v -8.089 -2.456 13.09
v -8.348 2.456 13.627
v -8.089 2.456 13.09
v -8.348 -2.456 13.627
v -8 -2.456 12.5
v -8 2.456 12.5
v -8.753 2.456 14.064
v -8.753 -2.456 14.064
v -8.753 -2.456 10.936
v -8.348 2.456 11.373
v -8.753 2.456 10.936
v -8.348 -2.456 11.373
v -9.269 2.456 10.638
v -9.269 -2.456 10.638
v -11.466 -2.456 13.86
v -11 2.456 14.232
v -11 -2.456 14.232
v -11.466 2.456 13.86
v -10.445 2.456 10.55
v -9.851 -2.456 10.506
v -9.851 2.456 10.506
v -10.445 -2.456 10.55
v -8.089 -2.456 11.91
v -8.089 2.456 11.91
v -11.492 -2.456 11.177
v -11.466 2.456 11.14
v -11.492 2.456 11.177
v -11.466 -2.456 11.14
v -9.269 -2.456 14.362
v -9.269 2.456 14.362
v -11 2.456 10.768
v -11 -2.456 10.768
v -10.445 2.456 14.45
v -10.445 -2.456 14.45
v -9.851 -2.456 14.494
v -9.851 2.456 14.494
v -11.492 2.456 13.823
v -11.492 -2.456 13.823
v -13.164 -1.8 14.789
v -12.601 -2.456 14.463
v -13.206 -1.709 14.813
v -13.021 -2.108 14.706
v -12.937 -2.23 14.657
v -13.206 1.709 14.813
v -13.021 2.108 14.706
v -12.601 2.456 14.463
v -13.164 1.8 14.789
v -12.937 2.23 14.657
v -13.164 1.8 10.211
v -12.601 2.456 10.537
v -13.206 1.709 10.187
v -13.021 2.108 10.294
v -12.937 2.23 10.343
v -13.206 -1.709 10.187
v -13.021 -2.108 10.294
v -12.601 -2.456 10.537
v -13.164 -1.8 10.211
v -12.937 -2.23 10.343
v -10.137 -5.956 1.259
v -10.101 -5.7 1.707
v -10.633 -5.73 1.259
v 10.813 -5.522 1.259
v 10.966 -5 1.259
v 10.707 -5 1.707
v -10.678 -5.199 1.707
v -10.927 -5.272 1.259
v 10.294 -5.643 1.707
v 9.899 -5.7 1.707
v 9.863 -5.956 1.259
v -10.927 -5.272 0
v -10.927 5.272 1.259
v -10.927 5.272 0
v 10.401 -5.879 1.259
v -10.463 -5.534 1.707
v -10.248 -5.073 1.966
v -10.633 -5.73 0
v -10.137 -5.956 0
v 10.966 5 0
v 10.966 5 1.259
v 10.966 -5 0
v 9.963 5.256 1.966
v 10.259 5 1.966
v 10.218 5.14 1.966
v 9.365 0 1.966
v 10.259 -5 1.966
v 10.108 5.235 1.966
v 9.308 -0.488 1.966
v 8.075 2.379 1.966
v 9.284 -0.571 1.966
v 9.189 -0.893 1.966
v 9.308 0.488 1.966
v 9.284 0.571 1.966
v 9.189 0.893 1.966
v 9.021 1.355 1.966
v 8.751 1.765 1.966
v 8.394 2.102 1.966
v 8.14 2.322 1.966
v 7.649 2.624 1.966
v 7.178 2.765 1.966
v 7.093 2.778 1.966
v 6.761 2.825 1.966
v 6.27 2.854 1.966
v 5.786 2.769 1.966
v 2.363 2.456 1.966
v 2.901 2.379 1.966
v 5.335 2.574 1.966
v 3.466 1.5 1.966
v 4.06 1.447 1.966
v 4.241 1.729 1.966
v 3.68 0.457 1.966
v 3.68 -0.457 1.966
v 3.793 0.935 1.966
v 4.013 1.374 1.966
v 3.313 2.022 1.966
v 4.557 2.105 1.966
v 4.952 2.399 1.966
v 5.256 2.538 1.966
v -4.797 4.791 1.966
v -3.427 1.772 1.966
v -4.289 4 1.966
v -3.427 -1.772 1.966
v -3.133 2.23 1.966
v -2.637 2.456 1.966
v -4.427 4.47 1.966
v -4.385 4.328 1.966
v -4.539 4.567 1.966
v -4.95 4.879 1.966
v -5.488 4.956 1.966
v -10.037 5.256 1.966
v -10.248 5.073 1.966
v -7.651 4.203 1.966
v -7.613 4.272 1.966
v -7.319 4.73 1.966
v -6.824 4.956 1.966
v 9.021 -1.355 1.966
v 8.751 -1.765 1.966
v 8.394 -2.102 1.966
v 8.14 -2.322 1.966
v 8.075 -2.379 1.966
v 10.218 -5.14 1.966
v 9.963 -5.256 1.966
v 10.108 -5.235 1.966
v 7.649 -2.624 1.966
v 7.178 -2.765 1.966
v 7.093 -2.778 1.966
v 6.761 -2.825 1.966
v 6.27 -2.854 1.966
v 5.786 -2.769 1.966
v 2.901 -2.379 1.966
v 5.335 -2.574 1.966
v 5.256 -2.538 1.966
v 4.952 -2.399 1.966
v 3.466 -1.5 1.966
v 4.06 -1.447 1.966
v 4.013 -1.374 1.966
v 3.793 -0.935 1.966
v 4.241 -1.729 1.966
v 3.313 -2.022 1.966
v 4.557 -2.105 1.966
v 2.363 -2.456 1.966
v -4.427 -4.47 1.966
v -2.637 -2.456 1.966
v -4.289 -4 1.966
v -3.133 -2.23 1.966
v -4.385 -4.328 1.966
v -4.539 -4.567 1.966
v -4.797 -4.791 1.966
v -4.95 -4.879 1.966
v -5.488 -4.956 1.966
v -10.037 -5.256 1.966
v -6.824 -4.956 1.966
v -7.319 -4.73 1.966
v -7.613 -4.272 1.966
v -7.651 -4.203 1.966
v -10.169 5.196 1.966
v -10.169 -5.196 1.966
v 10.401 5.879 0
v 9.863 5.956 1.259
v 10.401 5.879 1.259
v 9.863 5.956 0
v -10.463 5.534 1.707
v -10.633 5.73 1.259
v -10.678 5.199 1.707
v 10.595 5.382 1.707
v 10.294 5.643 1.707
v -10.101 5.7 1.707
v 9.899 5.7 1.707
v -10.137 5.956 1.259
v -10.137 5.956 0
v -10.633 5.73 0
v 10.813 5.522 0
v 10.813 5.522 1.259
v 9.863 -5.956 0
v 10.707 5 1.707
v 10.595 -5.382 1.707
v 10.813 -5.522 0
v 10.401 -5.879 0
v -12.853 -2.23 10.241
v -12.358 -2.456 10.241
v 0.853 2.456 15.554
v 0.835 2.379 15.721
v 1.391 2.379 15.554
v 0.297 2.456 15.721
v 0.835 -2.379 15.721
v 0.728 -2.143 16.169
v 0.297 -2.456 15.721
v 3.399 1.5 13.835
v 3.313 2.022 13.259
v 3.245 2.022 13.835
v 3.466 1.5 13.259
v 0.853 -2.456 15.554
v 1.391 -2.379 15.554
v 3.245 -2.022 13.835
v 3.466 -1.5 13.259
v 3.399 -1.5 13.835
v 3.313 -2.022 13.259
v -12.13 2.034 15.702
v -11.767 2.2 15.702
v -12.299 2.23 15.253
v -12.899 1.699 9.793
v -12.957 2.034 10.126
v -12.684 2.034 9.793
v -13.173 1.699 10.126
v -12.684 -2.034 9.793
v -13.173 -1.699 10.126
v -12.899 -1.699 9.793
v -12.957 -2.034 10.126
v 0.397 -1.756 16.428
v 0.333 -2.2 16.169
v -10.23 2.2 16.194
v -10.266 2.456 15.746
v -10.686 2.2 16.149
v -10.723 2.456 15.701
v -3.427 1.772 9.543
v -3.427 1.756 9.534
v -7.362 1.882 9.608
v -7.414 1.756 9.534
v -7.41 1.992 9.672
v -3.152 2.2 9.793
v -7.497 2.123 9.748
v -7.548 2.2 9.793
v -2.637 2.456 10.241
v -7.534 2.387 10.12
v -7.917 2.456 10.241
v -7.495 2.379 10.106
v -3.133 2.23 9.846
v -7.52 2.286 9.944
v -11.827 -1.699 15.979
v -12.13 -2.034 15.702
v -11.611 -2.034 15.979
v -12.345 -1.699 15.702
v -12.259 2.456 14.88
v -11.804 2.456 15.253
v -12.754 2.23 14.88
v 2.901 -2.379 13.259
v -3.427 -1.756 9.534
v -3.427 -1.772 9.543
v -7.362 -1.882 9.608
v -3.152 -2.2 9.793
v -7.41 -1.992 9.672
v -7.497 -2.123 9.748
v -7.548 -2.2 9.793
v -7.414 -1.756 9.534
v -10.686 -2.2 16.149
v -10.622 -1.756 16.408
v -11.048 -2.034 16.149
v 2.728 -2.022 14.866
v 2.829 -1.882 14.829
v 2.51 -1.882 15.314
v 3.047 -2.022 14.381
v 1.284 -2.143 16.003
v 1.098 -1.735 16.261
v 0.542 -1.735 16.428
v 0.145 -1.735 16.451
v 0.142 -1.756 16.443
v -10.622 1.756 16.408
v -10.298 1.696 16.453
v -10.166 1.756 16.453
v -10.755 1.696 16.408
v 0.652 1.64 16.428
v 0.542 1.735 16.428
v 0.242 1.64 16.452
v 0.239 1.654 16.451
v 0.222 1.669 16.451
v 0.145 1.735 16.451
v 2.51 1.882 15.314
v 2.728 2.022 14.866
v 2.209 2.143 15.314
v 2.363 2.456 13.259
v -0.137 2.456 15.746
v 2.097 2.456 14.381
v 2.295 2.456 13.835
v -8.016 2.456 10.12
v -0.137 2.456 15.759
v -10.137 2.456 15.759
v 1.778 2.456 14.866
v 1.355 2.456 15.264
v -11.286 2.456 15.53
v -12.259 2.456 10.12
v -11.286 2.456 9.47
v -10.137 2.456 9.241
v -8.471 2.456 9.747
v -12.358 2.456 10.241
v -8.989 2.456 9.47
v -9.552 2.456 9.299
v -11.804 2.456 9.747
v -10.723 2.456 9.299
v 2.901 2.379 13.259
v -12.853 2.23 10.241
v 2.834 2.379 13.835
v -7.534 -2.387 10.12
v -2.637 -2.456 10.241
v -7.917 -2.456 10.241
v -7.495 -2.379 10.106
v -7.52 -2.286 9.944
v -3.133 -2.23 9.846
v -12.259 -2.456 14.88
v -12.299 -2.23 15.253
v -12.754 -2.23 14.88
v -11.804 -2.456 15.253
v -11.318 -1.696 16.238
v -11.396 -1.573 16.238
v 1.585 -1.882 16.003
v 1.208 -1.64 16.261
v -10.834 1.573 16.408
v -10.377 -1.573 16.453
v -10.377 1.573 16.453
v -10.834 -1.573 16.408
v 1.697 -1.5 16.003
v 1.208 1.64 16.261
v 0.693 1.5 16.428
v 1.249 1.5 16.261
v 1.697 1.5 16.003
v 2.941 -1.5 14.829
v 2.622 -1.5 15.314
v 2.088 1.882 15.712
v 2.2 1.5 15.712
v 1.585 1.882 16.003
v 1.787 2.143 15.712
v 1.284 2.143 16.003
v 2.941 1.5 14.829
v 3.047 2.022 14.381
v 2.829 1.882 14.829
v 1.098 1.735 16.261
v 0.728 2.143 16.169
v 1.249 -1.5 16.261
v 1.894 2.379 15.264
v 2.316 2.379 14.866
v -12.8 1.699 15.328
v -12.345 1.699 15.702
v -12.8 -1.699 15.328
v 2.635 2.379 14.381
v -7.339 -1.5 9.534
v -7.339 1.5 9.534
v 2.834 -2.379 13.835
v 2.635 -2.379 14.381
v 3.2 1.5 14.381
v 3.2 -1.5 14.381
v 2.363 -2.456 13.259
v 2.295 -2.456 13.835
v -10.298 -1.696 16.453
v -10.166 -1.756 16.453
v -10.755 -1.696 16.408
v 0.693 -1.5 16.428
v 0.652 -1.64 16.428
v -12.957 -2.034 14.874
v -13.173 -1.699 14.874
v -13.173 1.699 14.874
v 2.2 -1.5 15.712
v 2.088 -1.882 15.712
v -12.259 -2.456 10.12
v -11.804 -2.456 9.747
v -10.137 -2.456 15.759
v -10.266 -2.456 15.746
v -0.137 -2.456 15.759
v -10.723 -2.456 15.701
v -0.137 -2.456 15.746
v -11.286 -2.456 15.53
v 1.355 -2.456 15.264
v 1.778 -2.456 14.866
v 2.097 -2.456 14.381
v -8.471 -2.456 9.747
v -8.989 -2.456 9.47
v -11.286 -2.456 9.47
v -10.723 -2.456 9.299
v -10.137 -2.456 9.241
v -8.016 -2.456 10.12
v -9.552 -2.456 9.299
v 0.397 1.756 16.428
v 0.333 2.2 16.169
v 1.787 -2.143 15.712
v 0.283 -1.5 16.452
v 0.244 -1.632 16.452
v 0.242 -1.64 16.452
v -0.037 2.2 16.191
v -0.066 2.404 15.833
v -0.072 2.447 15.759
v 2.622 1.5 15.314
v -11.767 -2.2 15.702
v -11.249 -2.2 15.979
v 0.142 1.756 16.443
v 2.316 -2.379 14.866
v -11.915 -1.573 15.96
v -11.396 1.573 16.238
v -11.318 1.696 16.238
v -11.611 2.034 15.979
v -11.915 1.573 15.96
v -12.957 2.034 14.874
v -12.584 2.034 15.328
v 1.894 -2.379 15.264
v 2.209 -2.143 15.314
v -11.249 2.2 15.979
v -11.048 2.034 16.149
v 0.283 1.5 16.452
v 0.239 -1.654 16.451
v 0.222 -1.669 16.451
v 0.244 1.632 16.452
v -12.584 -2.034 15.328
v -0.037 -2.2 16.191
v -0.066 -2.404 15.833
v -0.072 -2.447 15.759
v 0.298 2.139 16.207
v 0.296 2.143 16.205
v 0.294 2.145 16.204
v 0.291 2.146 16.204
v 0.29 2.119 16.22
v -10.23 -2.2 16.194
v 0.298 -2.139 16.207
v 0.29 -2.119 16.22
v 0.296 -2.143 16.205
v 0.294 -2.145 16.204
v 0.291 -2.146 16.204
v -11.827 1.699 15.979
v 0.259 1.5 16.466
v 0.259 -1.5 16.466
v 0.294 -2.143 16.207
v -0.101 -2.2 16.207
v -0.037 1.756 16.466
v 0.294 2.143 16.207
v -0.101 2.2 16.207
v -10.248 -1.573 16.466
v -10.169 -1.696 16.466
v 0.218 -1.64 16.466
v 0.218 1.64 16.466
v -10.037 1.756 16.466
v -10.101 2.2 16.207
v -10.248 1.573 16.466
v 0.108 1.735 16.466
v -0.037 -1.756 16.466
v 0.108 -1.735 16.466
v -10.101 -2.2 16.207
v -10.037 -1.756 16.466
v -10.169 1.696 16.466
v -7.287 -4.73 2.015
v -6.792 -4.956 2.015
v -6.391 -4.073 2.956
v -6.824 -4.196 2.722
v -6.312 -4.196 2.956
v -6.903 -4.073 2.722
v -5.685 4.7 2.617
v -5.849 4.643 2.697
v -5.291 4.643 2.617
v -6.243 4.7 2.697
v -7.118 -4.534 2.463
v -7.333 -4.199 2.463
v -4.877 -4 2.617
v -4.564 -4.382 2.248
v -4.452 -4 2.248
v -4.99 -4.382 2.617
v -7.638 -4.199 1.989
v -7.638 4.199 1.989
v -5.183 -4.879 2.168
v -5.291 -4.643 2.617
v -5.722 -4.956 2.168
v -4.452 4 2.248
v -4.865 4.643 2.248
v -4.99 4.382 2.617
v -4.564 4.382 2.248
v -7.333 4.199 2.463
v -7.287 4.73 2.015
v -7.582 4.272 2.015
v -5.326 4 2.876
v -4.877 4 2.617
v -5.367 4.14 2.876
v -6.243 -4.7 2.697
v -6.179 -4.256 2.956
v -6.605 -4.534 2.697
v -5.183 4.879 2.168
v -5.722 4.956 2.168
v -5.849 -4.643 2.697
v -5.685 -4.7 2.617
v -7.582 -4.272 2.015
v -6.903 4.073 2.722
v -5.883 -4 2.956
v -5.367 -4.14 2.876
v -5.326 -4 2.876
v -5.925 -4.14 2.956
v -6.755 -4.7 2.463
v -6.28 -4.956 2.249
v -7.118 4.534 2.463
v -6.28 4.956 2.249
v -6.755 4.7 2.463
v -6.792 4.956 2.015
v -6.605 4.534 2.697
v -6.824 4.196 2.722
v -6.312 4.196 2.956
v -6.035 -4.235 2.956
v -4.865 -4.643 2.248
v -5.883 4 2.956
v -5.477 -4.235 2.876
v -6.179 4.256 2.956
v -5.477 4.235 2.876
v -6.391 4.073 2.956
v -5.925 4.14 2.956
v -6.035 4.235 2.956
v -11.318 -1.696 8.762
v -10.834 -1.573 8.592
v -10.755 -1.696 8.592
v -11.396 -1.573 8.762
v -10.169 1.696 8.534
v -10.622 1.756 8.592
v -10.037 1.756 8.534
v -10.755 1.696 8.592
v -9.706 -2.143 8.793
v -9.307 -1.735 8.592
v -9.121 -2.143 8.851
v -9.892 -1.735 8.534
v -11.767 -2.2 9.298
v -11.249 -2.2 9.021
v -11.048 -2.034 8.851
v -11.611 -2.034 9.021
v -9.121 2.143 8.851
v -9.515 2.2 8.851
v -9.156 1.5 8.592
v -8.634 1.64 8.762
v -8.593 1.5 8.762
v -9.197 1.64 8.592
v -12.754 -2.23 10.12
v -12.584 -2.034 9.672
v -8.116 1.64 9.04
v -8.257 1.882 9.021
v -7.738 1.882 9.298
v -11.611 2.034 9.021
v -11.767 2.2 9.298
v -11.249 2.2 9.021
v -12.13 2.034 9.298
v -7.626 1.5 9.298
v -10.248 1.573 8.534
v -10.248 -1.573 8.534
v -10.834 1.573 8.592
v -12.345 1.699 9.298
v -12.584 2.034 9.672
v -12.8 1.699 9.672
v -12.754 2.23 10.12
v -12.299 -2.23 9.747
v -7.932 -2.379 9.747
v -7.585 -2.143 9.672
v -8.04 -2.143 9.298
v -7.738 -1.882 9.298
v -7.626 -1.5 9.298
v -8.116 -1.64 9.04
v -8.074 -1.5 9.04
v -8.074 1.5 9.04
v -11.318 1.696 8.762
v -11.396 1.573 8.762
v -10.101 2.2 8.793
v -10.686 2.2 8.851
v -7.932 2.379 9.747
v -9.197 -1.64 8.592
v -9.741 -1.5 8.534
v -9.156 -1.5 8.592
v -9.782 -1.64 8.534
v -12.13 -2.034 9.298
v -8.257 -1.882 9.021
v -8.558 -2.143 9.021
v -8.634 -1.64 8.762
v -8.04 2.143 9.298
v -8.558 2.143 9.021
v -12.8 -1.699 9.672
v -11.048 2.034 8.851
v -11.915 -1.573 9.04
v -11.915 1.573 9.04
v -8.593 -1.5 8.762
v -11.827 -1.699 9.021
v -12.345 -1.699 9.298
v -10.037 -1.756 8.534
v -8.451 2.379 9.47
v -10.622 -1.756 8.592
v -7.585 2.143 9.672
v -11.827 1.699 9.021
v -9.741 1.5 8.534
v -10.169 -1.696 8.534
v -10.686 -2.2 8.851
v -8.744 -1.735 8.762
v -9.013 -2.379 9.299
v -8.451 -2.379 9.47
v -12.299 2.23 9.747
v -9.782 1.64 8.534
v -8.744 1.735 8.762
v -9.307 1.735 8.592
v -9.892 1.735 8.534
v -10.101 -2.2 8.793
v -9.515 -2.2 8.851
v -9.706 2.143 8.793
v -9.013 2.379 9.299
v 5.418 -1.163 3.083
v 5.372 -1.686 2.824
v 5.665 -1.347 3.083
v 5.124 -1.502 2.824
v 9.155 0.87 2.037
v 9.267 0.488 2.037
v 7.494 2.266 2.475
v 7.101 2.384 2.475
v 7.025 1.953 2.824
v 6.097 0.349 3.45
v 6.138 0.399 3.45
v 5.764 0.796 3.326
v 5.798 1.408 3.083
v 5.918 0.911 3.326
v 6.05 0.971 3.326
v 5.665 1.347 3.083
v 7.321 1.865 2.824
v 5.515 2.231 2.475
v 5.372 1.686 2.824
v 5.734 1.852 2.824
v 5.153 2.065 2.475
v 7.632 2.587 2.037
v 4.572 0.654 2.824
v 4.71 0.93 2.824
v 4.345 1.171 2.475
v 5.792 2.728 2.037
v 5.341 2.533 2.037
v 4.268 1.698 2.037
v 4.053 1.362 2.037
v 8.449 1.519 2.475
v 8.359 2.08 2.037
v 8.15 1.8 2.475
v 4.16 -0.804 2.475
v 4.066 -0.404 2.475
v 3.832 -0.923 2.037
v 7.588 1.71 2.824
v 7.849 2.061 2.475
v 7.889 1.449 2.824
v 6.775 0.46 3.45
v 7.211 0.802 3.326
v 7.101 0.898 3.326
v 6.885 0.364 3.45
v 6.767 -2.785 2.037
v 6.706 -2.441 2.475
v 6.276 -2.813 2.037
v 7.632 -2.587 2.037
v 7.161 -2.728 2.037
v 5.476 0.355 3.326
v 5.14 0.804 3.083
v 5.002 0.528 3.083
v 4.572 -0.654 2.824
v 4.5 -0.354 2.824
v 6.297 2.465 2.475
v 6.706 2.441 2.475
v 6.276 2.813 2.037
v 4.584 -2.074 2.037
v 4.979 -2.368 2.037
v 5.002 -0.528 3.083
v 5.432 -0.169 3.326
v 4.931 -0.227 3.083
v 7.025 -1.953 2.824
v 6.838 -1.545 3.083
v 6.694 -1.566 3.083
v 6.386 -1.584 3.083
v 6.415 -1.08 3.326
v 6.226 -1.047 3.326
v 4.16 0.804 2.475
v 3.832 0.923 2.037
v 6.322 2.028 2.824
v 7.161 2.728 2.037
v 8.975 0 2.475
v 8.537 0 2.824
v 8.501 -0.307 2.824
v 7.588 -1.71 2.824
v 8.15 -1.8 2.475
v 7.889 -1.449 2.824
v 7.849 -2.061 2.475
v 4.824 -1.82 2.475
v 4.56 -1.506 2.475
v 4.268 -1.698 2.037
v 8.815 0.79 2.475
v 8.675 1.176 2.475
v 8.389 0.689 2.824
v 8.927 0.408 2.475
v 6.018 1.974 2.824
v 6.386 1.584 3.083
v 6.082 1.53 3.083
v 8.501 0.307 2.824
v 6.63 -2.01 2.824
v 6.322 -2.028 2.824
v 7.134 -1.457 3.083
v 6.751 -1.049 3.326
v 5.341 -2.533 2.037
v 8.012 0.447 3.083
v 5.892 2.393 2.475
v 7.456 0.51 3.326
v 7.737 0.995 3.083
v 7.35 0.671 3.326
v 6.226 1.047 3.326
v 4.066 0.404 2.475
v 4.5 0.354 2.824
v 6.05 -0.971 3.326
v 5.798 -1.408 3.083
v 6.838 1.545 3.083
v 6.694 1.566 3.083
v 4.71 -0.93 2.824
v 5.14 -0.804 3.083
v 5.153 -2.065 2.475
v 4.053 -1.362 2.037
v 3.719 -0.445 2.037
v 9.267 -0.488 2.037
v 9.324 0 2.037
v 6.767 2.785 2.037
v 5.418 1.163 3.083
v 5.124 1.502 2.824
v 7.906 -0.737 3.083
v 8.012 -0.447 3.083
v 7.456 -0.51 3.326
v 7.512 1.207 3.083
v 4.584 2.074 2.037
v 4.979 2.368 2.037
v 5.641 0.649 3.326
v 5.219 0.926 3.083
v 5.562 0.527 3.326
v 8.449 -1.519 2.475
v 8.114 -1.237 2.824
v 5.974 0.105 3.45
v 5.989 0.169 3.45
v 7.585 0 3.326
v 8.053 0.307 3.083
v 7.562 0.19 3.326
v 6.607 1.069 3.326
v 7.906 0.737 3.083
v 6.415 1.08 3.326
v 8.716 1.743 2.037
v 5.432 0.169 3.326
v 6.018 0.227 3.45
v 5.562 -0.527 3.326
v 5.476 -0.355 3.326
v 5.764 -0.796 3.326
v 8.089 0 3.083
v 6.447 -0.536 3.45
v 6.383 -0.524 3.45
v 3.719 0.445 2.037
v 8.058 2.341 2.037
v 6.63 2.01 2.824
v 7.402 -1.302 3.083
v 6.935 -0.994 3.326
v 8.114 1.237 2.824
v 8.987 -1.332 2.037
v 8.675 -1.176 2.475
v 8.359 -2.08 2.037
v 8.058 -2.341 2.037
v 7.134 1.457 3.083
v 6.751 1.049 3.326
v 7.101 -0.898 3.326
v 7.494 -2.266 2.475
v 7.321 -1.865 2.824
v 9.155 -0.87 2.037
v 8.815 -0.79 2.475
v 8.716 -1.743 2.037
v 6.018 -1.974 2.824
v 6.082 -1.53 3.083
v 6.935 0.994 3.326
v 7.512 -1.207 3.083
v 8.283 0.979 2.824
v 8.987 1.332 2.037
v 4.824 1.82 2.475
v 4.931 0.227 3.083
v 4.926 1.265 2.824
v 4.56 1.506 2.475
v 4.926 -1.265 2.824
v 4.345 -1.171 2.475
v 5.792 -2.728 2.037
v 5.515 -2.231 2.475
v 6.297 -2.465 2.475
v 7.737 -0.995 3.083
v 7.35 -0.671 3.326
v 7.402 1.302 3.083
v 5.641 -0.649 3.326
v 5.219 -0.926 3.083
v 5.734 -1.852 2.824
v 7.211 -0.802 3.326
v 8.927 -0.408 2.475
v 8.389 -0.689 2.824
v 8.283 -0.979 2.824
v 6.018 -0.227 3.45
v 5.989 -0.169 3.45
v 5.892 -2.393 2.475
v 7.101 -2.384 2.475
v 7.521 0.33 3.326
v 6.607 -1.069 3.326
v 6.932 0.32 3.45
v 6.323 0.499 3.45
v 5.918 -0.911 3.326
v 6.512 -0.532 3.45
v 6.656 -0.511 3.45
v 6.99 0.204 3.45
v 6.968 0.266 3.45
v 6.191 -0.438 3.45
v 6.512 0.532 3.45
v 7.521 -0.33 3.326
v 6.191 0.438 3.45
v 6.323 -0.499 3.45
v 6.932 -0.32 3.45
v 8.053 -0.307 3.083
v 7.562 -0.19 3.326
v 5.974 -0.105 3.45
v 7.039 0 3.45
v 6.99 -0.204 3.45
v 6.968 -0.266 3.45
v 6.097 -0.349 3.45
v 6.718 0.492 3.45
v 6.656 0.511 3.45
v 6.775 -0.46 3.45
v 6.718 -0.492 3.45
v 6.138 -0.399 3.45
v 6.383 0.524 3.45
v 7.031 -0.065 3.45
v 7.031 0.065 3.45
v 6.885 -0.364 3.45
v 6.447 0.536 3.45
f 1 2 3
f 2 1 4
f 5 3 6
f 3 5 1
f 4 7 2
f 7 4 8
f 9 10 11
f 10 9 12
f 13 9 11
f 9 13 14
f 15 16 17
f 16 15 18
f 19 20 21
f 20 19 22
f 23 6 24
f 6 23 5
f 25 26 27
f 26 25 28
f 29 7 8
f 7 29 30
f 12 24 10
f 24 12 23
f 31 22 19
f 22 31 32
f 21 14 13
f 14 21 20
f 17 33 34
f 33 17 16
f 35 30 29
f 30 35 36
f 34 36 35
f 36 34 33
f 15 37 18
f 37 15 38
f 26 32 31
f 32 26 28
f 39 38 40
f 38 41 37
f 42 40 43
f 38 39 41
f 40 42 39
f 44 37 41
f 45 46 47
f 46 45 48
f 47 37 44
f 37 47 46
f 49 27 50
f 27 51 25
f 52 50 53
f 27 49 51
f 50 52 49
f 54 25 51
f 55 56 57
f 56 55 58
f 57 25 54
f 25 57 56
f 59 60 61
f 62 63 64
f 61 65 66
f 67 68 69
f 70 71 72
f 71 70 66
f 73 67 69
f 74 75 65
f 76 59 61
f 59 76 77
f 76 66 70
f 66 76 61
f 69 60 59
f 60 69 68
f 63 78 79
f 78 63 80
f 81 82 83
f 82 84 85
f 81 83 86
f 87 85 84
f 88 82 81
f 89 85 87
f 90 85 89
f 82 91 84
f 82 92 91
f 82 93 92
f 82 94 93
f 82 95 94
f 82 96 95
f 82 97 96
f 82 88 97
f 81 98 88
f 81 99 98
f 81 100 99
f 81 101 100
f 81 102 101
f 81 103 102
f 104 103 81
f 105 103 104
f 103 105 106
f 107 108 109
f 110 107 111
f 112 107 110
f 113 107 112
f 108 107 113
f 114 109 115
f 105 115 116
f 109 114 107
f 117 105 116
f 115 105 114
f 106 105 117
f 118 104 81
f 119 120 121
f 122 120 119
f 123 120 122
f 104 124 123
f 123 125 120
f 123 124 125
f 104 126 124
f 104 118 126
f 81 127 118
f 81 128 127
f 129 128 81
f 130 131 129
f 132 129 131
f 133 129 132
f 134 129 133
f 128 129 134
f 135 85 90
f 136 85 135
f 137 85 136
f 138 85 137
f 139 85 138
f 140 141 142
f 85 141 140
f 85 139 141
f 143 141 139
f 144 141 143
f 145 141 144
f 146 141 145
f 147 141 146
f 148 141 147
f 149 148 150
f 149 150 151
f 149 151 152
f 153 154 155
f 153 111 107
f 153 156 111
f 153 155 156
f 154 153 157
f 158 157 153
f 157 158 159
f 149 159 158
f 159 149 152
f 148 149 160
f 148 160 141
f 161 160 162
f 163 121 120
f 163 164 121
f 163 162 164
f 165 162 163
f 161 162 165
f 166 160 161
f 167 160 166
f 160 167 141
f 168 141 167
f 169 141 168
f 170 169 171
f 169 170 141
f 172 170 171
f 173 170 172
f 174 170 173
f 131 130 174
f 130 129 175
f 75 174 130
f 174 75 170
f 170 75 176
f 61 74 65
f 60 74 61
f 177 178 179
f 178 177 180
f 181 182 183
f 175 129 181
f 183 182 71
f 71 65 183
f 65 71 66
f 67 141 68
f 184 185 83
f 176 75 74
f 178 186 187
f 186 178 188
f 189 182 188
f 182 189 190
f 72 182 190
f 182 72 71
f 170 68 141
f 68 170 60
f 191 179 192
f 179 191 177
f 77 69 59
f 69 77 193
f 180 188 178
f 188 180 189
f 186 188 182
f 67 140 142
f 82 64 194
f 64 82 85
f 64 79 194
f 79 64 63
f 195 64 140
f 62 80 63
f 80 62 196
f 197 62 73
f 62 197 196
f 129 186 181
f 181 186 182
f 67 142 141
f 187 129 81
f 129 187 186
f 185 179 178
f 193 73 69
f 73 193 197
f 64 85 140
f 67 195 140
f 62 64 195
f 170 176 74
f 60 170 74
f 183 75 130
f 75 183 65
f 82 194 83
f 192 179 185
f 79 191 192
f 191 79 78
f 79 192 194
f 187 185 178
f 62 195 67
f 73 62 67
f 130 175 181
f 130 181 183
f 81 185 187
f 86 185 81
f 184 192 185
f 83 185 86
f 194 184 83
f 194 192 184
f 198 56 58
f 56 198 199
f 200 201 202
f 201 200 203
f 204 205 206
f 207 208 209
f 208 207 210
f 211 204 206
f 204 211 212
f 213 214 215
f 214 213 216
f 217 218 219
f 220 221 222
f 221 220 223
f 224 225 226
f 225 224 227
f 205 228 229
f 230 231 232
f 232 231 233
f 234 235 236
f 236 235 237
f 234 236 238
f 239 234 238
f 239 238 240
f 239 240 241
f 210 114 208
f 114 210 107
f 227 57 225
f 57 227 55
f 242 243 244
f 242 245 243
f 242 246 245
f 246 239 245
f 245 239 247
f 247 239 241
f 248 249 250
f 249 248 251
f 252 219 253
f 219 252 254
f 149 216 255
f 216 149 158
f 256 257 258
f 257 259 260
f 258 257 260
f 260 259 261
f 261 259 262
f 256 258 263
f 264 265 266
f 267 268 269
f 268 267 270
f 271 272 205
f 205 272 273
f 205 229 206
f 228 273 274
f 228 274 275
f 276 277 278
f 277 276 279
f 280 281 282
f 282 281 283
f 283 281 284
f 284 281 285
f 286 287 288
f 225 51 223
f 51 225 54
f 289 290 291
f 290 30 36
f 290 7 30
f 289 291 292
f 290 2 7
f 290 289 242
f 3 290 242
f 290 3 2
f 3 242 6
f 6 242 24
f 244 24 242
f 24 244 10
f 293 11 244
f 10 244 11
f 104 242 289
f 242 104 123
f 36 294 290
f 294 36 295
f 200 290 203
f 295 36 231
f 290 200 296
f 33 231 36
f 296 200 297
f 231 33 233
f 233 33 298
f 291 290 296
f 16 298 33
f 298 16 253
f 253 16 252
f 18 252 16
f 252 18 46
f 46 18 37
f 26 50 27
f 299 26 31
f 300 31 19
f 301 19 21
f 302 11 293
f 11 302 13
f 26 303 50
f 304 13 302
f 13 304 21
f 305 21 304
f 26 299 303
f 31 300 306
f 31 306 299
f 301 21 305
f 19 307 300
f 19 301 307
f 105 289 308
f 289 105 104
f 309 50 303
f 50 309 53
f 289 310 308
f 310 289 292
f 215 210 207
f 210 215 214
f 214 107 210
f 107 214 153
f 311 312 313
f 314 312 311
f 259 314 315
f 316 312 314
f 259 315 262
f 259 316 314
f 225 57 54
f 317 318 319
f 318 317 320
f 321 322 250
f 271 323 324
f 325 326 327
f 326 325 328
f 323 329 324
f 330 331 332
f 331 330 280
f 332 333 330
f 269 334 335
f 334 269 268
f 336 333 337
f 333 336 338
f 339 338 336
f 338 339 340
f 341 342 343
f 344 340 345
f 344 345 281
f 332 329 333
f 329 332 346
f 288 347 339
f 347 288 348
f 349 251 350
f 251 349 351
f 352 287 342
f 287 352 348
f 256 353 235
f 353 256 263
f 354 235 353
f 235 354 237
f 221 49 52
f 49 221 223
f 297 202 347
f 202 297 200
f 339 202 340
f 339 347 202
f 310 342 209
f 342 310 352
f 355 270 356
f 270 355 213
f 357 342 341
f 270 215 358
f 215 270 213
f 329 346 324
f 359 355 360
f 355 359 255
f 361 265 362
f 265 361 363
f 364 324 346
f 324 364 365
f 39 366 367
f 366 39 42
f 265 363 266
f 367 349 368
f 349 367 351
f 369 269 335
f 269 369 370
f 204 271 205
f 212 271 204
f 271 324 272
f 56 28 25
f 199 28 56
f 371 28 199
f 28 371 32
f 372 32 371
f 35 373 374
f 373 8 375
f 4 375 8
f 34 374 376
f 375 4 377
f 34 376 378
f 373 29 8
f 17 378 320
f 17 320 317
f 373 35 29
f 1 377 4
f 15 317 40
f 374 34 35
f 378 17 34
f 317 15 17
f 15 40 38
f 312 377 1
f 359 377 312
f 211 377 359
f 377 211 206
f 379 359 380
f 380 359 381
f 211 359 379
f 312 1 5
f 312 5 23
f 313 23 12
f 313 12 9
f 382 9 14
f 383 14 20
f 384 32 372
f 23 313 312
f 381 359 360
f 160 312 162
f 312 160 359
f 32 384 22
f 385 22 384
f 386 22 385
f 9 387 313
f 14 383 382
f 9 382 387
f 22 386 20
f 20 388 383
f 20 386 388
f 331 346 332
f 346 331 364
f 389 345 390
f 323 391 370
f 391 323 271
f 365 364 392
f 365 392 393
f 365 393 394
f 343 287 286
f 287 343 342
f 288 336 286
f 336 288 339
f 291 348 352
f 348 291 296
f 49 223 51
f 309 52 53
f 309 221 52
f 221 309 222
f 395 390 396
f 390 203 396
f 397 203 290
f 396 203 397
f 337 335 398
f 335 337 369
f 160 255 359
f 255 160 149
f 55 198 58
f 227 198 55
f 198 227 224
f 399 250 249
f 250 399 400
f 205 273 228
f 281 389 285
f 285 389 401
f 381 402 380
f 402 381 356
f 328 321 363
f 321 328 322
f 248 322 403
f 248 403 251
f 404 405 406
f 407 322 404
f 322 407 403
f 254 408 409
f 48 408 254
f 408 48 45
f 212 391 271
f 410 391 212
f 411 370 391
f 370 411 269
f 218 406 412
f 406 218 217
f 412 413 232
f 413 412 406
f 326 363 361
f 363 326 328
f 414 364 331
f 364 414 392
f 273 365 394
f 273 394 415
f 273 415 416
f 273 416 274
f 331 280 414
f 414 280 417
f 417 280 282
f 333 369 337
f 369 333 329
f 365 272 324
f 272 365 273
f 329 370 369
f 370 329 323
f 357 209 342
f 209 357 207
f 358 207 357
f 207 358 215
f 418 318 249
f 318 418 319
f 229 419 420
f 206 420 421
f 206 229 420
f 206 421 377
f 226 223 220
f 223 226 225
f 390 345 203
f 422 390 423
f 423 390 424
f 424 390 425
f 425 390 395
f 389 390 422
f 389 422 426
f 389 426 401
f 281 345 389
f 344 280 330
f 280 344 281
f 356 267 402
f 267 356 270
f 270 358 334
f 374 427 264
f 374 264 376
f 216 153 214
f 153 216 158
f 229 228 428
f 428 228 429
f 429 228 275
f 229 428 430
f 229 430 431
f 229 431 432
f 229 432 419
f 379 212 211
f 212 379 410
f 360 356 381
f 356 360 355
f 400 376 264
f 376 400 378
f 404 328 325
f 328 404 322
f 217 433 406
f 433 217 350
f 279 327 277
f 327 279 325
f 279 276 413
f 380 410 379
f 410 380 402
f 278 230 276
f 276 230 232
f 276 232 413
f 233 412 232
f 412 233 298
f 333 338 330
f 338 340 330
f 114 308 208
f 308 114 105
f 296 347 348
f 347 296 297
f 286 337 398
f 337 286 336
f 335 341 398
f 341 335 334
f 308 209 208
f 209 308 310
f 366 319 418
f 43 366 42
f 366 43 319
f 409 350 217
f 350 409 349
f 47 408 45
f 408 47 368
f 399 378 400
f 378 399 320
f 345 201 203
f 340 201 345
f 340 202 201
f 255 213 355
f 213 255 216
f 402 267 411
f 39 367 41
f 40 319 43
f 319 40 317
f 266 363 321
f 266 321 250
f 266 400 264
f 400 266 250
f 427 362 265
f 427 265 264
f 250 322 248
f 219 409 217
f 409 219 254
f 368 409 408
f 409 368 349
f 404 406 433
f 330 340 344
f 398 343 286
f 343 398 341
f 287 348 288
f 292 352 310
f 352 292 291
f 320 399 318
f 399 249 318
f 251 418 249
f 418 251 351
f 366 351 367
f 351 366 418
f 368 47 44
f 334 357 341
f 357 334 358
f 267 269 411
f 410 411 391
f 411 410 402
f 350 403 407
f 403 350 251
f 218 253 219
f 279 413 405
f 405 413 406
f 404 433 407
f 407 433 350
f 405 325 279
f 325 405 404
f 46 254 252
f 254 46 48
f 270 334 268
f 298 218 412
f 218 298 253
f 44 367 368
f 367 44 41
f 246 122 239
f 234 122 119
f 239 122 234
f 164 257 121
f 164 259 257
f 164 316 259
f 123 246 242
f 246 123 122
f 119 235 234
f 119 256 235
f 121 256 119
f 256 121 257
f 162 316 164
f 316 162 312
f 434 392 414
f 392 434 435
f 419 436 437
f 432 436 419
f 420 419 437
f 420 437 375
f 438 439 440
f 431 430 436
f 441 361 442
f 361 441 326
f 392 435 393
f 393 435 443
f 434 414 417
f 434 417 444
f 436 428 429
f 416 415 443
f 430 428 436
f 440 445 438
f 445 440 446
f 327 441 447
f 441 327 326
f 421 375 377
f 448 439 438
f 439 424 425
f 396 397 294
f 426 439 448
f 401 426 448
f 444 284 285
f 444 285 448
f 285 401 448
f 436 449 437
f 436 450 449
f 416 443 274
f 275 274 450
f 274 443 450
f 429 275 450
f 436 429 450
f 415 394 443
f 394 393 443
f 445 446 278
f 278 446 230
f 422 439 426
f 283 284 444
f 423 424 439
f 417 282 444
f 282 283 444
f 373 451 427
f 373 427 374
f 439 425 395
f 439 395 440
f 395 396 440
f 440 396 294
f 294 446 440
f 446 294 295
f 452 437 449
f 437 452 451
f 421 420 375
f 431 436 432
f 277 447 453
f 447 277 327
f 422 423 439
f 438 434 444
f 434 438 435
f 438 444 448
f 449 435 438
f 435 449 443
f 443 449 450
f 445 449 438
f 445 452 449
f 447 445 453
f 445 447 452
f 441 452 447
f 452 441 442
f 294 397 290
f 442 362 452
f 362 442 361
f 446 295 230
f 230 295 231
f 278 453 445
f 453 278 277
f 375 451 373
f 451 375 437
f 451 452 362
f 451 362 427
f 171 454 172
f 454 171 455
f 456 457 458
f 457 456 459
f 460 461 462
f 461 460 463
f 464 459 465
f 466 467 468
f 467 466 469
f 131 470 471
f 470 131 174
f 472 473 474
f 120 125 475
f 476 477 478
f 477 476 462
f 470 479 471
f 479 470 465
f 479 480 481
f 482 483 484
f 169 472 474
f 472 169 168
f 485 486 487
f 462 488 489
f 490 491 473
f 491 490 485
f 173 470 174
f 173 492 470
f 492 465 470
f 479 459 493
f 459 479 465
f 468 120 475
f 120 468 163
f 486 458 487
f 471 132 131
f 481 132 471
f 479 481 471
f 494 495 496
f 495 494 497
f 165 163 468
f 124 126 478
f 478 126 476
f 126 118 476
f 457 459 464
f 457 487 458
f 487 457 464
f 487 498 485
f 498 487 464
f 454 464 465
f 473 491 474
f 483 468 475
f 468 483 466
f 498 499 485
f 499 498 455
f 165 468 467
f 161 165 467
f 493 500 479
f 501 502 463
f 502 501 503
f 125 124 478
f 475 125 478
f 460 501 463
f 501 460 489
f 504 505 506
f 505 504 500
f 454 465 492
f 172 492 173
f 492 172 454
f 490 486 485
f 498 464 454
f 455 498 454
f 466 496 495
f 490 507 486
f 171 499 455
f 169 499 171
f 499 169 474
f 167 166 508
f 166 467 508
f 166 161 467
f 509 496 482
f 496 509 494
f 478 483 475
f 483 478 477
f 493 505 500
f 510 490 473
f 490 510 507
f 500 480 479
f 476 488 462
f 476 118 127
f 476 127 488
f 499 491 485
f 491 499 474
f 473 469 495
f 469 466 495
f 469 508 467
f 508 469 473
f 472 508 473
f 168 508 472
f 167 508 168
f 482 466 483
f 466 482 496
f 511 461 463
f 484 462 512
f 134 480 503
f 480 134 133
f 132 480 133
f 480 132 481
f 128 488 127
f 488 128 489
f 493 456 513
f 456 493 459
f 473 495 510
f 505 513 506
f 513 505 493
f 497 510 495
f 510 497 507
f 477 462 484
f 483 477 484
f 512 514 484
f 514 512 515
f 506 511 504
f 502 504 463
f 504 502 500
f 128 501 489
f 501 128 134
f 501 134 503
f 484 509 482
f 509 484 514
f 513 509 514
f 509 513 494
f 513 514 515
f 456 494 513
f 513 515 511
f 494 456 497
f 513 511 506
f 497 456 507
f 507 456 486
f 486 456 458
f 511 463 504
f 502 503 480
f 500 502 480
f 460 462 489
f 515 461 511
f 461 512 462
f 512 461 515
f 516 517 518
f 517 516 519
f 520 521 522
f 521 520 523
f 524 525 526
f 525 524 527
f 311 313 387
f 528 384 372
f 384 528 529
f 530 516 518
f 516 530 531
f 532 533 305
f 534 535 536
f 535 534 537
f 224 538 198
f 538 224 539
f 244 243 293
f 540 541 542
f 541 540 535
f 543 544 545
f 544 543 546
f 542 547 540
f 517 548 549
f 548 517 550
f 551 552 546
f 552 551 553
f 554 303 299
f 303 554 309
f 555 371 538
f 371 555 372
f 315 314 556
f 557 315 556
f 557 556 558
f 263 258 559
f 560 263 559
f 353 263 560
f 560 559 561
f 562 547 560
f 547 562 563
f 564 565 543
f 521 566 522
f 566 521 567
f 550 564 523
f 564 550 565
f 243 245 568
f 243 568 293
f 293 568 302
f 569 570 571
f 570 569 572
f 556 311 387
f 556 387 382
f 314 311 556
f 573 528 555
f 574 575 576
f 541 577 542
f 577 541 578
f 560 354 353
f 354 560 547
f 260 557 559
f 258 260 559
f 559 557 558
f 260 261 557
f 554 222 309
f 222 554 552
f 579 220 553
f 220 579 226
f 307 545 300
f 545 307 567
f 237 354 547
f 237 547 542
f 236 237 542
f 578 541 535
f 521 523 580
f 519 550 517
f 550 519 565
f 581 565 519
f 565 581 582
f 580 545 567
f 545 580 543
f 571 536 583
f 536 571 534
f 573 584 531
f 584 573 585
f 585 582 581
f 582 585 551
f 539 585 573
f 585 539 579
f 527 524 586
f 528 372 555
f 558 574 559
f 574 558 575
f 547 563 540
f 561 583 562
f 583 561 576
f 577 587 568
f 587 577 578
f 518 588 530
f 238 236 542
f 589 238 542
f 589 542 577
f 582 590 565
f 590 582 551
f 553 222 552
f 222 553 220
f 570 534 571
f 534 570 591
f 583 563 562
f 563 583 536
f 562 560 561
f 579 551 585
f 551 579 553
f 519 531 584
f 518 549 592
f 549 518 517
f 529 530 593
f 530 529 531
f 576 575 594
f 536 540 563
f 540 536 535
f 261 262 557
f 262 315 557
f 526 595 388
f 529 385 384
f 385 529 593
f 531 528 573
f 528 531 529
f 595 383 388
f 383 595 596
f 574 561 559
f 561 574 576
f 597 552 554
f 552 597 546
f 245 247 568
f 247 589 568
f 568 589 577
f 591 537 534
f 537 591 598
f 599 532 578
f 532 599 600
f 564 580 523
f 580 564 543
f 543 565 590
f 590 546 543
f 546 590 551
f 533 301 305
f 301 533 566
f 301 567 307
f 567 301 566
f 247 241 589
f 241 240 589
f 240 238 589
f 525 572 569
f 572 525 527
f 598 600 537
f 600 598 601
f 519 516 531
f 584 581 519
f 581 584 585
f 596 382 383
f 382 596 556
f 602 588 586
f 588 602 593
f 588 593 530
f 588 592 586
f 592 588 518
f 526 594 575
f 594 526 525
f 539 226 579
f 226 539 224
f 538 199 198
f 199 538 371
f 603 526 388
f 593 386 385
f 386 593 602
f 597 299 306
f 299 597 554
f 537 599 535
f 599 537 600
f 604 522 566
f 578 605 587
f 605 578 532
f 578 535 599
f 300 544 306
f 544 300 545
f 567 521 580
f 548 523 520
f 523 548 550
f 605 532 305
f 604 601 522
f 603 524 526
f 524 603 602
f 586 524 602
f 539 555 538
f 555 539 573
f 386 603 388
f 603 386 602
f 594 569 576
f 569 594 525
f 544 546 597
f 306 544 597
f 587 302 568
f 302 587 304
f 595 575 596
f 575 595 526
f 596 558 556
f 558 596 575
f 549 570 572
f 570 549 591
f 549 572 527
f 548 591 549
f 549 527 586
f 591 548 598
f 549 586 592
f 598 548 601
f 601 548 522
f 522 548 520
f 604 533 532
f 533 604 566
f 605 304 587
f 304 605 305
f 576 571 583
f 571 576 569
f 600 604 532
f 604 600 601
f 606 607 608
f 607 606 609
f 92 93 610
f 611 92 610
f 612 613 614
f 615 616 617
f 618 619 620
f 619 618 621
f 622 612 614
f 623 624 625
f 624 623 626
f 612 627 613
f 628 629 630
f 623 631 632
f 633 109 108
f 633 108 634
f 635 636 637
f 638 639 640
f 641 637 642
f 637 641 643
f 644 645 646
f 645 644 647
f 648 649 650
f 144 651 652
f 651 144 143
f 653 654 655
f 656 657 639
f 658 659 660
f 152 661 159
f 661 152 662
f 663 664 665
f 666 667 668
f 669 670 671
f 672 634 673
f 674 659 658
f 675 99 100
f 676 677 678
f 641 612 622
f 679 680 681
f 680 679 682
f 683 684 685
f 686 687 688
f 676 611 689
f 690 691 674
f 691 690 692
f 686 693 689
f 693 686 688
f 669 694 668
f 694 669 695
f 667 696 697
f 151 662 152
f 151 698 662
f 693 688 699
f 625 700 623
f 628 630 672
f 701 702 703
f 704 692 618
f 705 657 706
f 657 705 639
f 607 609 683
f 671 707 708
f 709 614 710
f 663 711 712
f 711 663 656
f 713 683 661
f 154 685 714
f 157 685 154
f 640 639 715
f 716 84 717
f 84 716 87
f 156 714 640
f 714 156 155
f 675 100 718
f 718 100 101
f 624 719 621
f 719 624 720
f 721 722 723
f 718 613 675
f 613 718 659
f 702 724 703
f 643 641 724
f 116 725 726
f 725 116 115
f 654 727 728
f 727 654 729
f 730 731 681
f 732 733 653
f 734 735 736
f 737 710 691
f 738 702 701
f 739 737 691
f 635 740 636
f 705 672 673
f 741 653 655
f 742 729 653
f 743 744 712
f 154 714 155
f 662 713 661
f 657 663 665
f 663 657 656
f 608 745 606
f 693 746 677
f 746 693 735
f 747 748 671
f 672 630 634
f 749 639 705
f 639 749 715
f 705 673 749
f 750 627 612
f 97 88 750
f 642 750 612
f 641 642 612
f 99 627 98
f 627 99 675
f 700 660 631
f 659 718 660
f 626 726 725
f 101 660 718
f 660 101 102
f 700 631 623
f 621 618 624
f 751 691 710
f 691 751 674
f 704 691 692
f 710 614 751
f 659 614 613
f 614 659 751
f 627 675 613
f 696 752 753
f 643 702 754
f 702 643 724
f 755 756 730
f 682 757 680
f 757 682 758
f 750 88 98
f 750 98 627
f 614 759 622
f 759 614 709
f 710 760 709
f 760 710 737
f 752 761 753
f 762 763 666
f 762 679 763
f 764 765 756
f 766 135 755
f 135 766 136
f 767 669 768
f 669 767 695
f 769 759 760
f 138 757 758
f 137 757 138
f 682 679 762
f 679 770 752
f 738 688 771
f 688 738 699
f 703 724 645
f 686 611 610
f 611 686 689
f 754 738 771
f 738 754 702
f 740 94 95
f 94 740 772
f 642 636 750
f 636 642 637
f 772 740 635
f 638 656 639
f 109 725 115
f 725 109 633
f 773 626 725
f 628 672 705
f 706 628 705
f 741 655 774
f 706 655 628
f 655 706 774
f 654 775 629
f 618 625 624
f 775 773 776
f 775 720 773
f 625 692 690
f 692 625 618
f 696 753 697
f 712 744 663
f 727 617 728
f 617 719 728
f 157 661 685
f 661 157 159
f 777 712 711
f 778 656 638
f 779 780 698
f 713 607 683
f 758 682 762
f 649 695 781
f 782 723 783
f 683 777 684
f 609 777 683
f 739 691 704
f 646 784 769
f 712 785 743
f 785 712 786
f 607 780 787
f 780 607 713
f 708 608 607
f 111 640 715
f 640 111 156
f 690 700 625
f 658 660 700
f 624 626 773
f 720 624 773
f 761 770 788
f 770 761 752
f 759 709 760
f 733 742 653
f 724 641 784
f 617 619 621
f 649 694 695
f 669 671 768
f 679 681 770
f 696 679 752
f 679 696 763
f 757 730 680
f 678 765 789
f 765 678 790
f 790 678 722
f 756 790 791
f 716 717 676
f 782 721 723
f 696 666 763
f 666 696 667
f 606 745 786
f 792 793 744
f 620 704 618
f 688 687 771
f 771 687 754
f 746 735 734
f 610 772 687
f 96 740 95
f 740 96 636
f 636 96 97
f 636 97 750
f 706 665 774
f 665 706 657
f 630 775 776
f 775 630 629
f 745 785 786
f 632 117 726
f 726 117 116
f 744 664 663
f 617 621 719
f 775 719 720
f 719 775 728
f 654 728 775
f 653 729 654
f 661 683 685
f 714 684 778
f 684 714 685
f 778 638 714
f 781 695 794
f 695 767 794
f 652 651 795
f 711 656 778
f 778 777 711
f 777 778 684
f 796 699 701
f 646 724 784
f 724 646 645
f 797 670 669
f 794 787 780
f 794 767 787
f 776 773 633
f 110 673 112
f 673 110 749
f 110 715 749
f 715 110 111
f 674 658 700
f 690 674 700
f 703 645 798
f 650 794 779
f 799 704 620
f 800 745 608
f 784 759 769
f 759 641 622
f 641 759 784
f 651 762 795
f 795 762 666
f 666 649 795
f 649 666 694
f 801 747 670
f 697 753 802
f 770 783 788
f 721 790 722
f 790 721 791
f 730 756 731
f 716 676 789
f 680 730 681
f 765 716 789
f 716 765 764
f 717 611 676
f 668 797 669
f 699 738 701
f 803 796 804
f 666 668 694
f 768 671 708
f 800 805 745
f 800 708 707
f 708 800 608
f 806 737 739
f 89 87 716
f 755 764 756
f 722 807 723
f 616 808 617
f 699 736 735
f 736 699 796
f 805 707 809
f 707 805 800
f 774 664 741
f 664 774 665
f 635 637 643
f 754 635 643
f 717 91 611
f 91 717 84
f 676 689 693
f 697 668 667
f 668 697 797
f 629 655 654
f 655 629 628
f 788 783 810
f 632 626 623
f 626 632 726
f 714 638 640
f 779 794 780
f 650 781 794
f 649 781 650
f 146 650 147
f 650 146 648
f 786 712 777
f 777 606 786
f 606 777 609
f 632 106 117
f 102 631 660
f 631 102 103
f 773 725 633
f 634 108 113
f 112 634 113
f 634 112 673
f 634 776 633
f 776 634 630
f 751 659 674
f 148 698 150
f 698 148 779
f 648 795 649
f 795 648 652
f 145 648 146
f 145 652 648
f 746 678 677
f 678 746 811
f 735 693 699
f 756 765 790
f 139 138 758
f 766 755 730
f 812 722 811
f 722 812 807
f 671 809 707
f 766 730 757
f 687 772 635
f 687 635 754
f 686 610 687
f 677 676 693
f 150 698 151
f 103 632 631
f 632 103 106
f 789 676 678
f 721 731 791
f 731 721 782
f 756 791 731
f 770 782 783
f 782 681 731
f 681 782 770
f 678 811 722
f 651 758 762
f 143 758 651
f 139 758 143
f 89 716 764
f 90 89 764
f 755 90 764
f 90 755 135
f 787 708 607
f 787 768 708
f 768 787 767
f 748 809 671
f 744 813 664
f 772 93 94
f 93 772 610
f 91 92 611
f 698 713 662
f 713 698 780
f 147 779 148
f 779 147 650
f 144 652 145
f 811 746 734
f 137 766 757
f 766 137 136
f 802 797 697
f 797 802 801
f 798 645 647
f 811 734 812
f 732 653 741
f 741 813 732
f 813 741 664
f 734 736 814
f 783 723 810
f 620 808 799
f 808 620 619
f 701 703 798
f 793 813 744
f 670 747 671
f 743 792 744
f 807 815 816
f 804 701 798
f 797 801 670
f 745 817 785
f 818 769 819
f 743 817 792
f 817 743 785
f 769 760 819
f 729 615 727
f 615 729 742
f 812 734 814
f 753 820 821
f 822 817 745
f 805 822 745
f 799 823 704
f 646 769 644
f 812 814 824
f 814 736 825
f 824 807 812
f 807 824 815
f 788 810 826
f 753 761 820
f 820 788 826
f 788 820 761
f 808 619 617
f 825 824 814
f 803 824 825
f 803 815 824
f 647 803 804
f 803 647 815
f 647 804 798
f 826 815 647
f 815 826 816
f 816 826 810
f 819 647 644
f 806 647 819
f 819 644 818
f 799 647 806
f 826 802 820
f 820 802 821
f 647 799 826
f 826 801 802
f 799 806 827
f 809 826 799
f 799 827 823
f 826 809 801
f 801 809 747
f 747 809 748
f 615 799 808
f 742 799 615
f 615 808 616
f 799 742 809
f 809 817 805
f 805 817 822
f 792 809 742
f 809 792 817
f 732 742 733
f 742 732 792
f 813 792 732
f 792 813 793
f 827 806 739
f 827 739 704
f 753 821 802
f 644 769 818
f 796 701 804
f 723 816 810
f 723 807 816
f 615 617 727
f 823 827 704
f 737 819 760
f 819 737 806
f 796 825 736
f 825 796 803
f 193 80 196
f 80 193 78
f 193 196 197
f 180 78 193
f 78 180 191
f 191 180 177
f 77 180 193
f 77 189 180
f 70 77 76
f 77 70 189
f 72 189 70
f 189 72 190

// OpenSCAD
$fa = 3;
$fs = 0.6;
//$fn = 100;

// Abmessungen der Grundplatte
base_s = [20, 10, 2];
base_r = 1.0; // Radius an den Kanten

// Abmessungen/Profil Arm
arm1_s = [5, 3, 12];
arm1_r  = 2.5; // Radius großer Bogen am Arm

arm2_s = [10, 3, 5];
arm2_r  = 3.0; // Radius am Scharnier

scharnier_ri = 2;  // Scharnier Innendurchmesser

difference ()
{

minkowski ()
{
  union()
  {
    // Grundplatte
    cube (base_s, center = true);
      
    // auf die Oberseite der Grundplatte verschieben
    translate ([0, 0, base_s[2]/2])
    {
      translate ([-6, 0, 0])
      rotate ([90, 0, 0])
        cylinder (d = 2, h = 8, center = true);
      translate ([6.5, 0, -1.0])
        sphere (d = 5);

      // senkrechter Stück Arm
      translate ([0, 0, arm1_s[2]/2])
        cube (arm1_s, center = true);
   
      translate ([0, 0, arm1_s[2]])
        rotate ([90, 0, 0])
          cylinder (r = arm1_r, h = arm1_s[1], center = true);

      // horizontaler Stück Arm
      translate ([-arm2_s[0], -arm1_s[1]/2, arm1_s[2] - arm2_s[2]/2])
        cube (arm2_s);

      translate ([-arm2_s[0], 0, arm1_s[2] + (arm2_s[2]/2 - arm2_r)])
        rotate ([90, 0, 0])
          cylinder (r = arm2_r, h = arm1_s[1], center = true);
    }
  } // union
    
  sphere (r = base_r);
}

translate ([-arm2_s[0], 0, base_s[2]/2 + arm1_s[2] + (arm2_s[2]/2 - arm2_r)])
  rotate ([90, 0, 0])
    {
      // Scharnierbohrung
      cylinder (r = scharnier_ri, h = 2 * arm1_s[1], center = true);
      // Dreieck
      translate ([-3.2, 0, 0])
        cylinder (r = 2 * scharnier_ri, h = 2 * arm1_s[1], $fn = 3, center = true);
    }

// Grundplatte unten eben schneiden
translate ([0, 0, -2])
  cube (2*base_s, center = true);
}
